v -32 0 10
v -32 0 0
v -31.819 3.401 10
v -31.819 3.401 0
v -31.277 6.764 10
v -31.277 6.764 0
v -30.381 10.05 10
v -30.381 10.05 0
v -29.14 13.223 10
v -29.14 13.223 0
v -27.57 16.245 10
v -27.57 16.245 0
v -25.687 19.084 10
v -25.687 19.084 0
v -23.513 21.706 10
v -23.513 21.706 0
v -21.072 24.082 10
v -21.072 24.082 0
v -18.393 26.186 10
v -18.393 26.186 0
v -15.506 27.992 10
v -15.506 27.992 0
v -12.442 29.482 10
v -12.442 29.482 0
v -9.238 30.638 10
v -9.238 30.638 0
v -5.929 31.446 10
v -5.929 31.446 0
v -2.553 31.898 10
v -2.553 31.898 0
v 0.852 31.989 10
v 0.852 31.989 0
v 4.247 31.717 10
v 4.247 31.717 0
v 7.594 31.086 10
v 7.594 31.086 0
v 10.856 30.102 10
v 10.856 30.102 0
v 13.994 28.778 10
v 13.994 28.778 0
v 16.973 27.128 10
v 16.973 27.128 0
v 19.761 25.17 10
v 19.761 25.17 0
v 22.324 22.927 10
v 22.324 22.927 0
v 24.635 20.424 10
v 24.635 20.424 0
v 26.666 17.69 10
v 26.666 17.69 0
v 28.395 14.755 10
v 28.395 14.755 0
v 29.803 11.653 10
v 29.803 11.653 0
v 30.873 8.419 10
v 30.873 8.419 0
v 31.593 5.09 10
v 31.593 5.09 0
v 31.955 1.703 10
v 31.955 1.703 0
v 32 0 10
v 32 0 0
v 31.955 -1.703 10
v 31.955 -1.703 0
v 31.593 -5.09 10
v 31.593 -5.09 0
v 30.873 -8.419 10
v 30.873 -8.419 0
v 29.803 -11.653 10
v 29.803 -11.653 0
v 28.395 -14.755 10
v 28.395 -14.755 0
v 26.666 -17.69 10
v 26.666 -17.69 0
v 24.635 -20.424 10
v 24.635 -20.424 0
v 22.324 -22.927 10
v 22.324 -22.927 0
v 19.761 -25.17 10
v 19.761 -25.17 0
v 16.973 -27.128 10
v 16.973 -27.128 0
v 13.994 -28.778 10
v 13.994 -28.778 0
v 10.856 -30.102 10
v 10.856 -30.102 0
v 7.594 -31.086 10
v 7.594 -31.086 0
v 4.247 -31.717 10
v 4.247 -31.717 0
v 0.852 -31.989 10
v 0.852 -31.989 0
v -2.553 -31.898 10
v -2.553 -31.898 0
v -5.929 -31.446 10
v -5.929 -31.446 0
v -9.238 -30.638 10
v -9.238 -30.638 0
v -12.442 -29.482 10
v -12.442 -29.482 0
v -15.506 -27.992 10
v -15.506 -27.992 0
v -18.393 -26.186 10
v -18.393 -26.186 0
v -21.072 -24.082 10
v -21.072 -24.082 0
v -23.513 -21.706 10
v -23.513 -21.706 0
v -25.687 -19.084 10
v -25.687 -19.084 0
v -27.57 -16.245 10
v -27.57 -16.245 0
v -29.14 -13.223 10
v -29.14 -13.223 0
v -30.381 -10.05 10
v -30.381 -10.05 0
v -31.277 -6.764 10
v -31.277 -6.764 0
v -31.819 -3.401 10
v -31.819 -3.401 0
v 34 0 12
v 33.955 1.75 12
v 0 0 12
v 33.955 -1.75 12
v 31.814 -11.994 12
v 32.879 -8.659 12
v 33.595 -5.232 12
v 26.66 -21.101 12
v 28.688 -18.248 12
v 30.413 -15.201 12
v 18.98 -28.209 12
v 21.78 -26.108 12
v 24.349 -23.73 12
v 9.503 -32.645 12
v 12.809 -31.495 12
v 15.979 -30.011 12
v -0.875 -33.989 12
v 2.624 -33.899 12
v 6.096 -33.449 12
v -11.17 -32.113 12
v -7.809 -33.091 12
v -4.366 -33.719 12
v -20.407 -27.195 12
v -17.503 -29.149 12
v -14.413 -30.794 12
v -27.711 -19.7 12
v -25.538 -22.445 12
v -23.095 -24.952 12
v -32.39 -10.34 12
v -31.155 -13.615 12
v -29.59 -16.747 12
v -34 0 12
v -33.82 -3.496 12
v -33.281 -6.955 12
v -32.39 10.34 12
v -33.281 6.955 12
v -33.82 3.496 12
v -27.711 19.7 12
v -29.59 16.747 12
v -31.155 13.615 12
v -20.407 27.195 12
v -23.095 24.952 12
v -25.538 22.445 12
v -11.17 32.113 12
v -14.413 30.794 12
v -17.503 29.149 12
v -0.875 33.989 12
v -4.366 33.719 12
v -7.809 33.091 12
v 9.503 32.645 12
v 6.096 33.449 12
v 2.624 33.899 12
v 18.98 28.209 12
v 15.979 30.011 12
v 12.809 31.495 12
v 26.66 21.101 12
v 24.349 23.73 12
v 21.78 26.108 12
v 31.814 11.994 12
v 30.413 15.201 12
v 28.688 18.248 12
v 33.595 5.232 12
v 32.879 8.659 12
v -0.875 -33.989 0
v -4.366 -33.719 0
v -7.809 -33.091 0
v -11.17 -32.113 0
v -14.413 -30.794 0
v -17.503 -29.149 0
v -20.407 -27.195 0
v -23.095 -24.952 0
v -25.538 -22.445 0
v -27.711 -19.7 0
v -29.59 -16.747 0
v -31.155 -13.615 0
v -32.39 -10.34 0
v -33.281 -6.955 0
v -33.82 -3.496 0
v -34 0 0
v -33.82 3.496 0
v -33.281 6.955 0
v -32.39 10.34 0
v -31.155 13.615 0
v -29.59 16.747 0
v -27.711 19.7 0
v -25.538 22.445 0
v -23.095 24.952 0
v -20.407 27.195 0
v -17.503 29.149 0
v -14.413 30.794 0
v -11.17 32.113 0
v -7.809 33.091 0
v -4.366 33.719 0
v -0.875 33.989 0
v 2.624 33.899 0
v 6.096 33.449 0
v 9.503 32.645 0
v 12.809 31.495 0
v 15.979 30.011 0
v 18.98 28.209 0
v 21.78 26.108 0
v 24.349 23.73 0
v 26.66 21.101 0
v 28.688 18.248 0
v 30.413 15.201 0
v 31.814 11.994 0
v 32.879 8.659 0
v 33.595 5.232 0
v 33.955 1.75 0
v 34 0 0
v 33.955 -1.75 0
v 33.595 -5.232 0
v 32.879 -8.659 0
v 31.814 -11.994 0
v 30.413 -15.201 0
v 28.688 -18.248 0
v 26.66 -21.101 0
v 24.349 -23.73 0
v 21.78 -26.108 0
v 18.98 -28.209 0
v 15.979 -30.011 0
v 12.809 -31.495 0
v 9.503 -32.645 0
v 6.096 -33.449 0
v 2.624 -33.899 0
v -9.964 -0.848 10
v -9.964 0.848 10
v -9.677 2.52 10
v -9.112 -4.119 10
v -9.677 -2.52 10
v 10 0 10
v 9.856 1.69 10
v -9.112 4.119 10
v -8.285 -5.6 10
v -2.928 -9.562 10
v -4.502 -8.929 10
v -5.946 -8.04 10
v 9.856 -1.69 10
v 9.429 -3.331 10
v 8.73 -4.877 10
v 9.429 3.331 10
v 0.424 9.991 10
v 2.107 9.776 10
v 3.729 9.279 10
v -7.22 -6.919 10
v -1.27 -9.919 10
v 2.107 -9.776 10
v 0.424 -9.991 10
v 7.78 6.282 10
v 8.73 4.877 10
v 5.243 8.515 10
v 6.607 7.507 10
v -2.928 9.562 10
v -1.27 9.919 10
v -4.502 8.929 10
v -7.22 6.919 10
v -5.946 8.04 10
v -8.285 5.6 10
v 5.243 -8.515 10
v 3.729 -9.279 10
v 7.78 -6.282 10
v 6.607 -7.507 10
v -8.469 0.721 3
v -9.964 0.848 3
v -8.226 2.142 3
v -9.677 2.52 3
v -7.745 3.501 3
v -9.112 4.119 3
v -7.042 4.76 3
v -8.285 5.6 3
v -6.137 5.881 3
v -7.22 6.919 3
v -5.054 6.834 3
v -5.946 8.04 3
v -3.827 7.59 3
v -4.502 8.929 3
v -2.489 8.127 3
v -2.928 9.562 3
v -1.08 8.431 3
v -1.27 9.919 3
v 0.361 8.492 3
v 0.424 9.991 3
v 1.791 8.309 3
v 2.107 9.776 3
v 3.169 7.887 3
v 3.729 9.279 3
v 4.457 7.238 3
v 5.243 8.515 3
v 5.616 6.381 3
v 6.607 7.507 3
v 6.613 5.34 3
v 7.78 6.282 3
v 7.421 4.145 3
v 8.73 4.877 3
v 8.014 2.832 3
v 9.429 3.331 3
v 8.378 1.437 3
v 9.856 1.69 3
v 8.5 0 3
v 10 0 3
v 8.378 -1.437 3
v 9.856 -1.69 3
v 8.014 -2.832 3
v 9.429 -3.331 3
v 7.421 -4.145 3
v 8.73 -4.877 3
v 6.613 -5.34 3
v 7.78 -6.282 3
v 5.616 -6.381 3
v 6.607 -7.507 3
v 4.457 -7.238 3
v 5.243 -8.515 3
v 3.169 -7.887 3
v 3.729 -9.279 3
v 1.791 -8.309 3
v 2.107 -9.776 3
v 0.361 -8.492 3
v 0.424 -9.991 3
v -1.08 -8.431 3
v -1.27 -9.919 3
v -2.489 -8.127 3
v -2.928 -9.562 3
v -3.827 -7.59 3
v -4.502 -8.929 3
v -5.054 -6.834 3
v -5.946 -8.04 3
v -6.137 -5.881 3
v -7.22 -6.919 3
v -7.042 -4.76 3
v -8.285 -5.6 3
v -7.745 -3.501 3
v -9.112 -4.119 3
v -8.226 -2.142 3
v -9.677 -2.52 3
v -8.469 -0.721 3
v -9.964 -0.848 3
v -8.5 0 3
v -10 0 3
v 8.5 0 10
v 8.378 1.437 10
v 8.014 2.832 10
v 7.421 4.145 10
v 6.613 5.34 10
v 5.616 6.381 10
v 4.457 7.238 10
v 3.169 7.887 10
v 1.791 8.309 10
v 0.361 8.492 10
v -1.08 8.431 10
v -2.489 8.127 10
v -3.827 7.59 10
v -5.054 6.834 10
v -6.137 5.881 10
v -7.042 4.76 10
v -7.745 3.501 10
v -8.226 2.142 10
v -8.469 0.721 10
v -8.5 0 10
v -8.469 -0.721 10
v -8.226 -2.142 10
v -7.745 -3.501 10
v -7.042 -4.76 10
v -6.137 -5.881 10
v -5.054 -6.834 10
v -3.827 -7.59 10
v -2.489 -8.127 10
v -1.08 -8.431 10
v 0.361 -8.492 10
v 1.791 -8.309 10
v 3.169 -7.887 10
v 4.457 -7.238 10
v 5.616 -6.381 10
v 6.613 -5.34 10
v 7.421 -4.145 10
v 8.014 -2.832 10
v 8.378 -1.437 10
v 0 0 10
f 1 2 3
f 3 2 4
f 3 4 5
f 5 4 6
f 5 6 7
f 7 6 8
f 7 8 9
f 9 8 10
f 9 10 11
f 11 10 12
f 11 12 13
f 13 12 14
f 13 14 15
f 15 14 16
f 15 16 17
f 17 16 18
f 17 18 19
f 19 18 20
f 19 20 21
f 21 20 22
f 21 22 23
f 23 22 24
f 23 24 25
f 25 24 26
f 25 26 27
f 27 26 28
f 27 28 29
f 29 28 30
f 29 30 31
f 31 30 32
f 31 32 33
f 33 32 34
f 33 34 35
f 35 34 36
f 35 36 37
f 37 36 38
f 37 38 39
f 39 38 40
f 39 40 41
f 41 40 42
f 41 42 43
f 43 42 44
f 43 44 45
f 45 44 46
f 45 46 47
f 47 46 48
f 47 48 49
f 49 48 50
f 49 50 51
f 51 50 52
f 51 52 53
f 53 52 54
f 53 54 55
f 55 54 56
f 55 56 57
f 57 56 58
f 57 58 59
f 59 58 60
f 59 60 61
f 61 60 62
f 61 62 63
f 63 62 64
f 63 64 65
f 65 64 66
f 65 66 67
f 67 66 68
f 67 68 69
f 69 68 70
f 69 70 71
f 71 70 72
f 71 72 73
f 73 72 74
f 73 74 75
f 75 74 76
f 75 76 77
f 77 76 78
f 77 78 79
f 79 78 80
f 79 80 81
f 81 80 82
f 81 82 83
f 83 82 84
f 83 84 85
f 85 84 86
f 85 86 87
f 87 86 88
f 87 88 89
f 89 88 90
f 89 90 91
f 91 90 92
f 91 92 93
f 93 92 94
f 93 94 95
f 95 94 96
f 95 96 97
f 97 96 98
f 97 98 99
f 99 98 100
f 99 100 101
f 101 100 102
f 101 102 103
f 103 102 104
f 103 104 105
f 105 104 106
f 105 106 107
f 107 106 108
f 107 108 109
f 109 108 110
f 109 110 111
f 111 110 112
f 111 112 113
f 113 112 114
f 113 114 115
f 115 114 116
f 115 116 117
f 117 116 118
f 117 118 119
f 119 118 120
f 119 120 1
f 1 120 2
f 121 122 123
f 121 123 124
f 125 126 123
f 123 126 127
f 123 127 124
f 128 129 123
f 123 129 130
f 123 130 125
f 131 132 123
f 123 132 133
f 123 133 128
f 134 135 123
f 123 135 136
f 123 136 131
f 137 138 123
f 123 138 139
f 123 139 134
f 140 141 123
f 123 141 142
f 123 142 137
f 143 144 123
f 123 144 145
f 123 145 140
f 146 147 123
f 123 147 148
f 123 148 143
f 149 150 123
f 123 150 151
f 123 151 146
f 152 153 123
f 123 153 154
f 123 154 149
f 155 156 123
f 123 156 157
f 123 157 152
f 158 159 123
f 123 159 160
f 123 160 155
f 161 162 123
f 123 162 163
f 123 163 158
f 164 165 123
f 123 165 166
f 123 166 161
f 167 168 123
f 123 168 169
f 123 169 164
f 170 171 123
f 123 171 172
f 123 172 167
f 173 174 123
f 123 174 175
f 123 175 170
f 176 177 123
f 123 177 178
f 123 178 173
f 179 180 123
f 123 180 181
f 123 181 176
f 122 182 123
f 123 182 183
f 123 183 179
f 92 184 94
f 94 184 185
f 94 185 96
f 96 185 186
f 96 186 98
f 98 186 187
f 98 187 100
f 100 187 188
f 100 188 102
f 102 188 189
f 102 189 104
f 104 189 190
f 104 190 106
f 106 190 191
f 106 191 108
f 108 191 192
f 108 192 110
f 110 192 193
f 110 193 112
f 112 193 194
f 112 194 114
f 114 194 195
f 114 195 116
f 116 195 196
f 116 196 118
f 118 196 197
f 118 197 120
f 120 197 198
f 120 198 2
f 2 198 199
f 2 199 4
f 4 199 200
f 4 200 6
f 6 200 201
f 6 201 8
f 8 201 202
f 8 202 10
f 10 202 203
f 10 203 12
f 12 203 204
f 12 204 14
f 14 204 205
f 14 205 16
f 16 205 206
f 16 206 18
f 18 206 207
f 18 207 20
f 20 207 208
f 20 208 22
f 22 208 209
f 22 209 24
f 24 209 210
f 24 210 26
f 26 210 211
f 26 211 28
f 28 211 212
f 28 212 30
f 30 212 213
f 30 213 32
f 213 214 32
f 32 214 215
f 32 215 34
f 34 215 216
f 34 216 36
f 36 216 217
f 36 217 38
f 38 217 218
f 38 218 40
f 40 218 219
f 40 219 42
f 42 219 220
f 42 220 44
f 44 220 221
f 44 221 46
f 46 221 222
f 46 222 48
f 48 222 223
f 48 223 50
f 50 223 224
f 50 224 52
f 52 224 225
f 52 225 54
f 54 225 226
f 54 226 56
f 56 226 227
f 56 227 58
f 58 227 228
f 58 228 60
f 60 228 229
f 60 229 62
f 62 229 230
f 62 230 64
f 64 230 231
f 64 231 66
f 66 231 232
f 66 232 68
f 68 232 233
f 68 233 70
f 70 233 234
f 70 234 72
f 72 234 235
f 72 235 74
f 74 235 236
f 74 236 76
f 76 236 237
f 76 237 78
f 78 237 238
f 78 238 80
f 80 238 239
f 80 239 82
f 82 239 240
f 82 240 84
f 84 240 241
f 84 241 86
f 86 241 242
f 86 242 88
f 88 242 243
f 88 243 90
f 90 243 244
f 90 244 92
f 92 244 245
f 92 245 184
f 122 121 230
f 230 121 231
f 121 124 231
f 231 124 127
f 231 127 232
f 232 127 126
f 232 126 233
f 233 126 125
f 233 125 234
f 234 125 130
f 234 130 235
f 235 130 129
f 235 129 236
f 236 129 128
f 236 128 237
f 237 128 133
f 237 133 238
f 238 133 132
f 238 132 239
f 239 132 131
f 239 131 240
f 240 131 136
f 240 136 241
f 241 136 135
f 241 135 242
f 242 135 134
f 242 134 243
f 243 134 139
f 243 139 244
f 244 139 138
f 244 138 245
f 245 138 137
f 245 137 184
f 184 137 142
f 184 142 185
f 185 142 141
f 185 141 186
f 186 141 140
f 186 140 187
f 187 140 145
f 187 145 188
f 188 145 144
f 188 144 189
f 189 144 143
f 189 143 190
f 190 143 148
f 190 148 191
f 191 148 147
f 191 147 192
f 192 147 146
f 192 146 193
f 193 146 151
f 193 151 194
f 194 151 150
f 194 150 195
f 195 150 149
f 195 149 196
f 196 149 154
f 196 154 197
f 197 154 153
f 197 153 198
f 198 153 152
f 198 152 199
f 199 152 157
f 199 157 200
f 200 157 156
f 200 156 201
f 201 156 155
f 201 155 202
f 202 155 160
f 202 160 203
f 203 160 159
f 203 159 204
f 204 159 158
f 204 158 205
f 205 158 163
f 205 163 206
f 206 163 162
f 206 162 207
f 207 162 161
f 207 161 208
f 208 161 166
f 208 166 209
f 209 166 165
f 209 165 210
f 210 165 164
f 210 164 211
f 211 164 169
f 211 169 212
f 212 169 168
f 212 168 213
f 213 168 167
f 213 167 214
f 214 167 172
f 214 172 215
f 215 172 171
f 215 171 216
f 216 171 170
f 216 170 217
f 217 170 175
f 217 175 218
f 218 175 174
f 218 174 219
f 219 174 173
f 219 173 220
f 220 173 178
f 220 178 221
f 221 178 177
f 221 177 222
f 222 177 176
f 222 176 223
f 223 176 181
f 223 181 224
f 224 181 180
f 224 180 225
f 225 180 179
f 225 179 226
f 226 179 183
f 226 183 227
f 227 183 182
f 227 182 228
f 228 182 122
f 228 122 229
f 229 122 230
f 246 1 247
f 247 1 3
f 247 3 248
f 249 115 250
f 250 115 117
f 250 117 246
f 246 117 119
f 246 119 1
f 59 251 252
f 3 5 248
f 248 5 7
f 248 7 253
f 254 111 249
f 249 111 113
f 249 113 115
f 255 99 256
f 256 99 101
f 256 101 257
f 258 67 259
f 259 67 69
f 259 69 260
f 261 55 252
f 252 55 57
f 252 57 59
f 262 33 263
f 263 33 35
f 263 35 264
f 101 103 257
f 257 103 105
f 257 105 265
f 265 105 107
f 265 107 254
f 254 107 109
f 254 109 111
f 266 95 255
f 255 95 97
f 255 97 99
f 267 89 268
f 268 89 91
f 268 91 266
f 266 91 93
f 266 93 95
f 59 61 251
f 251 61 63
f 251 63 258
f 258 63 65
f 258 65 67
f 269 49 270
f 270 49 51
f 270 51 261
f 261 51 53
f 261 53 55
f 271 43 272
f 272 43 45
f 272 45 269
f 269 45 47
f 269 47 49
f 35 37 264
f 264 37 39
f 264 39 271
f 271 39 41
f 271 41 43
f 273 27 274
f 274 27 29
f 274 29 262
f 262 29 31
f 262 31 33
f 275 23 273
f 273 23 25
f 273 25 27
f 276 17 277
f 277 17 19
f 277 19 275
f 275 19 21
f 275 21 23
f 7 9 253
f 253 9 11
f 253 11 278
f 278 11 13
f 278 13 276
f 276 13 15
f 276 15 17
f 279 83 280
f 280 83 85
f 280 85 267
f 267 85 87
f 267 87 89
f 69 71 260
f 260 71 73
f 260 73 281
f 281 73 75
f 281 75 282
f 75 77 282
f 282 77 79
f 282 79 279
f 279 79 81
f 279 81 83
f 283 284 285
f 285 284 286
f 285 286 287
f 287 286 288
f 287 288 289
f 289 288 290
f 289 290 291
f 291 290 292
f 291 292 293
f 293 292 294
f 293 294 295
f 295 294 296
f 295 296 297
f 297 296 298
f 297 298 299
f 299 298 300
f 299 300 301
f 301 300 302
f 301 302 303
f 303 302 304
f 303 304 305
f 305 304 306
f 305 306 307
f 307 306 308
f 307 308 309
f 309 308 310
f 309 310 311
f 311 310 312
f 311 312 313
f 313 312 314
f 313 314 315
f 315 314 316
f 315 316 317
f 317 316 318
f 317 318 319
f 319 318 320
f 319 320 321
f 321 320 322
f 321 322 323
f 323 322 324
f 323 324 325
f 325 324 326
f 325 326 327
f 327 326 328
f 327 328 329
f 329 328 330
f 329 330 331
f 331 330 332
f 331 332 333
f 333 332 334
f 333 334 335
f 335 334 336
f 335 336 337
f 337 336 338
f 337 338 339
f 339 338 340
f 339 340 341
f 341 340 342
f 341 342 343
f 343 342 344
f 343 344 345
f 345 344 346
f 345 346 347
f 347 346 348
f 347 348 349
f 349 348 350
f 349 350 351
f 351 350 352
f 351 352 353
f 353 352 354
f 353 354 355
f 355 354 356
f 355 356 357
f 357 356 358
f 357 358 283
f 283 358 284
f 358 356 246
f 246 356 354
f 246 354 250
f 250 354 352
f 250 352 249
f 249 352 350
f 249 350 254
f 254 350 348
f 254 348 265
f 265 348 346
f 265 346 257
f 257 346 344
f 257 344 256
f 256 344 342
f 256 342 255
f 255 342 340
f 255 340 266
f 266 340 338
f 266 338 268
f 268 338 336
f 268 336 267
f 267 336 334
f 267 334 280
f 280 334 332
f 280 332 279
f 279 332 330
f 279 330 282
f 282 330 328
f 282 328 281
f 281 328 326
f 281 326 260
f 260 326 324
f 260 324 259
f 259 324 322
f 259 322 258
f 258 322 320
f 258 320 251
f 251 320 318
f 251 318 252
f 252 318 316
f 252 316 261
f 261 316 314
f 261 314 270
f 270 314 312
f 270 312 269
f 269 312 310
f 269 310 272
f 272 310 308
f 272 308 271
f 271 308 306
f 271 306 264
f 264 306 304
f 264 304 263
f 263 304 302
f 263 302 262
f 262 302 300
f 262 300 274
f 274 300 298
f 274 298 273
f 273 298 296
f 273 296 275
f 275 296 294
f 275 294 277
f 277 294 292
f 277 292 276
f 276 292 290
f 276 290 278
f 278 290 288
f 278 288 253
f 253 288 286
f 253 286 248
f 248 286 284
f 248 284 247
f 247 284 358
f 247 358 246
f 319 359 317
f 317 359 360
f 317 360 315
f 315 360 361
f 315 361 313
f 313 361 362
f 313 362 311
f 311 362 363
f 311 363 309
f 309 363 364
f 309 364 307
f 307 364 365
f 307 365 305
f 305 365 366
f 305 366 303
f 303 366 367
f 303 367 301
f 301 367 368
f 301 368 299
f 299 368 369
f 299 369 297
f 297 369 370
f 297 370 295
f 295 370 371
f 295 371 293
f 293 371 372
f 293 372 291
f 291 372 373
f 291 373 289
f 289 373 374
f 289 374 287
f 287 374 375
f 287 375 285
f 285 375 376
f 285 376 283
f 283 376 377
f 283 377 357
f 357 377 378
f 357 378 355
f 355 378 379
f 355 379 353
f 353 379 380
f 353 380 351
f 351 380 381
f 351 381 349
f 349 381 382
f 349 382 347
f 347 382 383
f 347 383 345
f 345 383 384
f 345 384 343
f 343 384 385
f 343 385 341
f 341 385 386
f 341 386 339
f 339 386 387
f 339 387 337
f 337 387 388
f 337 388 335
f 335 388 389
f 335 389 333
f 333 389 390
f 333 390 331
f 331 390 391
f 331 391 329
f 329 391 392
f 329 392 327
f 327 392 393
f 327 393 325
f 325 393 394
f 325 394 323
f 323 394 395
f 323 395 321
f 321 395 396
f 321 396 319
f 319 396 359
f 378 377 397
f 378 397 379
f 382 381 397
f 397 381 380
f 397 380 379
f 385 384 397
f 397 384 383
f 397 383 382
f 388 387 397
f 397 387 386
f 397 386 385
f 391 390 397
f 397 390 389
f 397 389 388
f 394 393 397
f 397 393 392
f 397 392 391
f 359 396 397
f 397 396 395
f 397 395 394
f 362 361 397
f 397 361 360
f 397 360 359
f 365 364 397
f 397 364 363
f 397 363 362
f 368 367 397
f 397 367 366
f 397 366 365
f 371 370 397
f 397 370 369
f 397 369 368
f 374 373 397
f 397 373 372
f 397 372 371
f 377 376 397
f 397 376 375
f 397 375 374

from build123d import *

# Parameters (mm, degrees)
SKETCH1_R           = 34
SKETCH1_R_2         = 32
BOSS_EXTRUDE1_DEPTH = 12
BOSS_EXTRUDE2_START = -2
SKETCH2_R           = 34
BOSS_EXTRUDE2_DEPTH = 2
SKETCH3_R           = 10
SKETCH3_R_2         = 8.5
BOSS_EXTRUDE3_DEPTH = 7


with BuildPart() as part:
    # Sketch1 → Boss-Extrude1 (new body)
    with BuildSketch(Plane.XY):
        Circle(SKETCH1_R)
        Circle(SKETCH1_R_2, mode=Mode.SUBTRACT)
    extrude(amount=BOSS_EXTRUDE1_DEPTH)

    # Sketch2 → Boss-Extrude2 (add)
    with BuildSketch(Plane.XY.offset(12).offset(BOSS_EXTRUDE2_START)):
        Circle(SKETCH2_R)
    extrude(amount=BOSS_EXTRUDE2_DEPTH)

    # Sketch3 → Boss-Extrude3 (add)
    with BuildSketch(Plane(origin=(0, 0, 10), x_dir=(-1, 0, 0), z_dir=(0, 0, -1))):
        with Locations(Location((0, 0, 0), (0, 0, 180))):
            Circle(SKETCH3_R)
        Circle(SKETCH3_R_2, mode=Mode.SUBTRACT)
    extrude(amount=BOSS_EXTRUDE3_DEPTH)


solid = part.part
